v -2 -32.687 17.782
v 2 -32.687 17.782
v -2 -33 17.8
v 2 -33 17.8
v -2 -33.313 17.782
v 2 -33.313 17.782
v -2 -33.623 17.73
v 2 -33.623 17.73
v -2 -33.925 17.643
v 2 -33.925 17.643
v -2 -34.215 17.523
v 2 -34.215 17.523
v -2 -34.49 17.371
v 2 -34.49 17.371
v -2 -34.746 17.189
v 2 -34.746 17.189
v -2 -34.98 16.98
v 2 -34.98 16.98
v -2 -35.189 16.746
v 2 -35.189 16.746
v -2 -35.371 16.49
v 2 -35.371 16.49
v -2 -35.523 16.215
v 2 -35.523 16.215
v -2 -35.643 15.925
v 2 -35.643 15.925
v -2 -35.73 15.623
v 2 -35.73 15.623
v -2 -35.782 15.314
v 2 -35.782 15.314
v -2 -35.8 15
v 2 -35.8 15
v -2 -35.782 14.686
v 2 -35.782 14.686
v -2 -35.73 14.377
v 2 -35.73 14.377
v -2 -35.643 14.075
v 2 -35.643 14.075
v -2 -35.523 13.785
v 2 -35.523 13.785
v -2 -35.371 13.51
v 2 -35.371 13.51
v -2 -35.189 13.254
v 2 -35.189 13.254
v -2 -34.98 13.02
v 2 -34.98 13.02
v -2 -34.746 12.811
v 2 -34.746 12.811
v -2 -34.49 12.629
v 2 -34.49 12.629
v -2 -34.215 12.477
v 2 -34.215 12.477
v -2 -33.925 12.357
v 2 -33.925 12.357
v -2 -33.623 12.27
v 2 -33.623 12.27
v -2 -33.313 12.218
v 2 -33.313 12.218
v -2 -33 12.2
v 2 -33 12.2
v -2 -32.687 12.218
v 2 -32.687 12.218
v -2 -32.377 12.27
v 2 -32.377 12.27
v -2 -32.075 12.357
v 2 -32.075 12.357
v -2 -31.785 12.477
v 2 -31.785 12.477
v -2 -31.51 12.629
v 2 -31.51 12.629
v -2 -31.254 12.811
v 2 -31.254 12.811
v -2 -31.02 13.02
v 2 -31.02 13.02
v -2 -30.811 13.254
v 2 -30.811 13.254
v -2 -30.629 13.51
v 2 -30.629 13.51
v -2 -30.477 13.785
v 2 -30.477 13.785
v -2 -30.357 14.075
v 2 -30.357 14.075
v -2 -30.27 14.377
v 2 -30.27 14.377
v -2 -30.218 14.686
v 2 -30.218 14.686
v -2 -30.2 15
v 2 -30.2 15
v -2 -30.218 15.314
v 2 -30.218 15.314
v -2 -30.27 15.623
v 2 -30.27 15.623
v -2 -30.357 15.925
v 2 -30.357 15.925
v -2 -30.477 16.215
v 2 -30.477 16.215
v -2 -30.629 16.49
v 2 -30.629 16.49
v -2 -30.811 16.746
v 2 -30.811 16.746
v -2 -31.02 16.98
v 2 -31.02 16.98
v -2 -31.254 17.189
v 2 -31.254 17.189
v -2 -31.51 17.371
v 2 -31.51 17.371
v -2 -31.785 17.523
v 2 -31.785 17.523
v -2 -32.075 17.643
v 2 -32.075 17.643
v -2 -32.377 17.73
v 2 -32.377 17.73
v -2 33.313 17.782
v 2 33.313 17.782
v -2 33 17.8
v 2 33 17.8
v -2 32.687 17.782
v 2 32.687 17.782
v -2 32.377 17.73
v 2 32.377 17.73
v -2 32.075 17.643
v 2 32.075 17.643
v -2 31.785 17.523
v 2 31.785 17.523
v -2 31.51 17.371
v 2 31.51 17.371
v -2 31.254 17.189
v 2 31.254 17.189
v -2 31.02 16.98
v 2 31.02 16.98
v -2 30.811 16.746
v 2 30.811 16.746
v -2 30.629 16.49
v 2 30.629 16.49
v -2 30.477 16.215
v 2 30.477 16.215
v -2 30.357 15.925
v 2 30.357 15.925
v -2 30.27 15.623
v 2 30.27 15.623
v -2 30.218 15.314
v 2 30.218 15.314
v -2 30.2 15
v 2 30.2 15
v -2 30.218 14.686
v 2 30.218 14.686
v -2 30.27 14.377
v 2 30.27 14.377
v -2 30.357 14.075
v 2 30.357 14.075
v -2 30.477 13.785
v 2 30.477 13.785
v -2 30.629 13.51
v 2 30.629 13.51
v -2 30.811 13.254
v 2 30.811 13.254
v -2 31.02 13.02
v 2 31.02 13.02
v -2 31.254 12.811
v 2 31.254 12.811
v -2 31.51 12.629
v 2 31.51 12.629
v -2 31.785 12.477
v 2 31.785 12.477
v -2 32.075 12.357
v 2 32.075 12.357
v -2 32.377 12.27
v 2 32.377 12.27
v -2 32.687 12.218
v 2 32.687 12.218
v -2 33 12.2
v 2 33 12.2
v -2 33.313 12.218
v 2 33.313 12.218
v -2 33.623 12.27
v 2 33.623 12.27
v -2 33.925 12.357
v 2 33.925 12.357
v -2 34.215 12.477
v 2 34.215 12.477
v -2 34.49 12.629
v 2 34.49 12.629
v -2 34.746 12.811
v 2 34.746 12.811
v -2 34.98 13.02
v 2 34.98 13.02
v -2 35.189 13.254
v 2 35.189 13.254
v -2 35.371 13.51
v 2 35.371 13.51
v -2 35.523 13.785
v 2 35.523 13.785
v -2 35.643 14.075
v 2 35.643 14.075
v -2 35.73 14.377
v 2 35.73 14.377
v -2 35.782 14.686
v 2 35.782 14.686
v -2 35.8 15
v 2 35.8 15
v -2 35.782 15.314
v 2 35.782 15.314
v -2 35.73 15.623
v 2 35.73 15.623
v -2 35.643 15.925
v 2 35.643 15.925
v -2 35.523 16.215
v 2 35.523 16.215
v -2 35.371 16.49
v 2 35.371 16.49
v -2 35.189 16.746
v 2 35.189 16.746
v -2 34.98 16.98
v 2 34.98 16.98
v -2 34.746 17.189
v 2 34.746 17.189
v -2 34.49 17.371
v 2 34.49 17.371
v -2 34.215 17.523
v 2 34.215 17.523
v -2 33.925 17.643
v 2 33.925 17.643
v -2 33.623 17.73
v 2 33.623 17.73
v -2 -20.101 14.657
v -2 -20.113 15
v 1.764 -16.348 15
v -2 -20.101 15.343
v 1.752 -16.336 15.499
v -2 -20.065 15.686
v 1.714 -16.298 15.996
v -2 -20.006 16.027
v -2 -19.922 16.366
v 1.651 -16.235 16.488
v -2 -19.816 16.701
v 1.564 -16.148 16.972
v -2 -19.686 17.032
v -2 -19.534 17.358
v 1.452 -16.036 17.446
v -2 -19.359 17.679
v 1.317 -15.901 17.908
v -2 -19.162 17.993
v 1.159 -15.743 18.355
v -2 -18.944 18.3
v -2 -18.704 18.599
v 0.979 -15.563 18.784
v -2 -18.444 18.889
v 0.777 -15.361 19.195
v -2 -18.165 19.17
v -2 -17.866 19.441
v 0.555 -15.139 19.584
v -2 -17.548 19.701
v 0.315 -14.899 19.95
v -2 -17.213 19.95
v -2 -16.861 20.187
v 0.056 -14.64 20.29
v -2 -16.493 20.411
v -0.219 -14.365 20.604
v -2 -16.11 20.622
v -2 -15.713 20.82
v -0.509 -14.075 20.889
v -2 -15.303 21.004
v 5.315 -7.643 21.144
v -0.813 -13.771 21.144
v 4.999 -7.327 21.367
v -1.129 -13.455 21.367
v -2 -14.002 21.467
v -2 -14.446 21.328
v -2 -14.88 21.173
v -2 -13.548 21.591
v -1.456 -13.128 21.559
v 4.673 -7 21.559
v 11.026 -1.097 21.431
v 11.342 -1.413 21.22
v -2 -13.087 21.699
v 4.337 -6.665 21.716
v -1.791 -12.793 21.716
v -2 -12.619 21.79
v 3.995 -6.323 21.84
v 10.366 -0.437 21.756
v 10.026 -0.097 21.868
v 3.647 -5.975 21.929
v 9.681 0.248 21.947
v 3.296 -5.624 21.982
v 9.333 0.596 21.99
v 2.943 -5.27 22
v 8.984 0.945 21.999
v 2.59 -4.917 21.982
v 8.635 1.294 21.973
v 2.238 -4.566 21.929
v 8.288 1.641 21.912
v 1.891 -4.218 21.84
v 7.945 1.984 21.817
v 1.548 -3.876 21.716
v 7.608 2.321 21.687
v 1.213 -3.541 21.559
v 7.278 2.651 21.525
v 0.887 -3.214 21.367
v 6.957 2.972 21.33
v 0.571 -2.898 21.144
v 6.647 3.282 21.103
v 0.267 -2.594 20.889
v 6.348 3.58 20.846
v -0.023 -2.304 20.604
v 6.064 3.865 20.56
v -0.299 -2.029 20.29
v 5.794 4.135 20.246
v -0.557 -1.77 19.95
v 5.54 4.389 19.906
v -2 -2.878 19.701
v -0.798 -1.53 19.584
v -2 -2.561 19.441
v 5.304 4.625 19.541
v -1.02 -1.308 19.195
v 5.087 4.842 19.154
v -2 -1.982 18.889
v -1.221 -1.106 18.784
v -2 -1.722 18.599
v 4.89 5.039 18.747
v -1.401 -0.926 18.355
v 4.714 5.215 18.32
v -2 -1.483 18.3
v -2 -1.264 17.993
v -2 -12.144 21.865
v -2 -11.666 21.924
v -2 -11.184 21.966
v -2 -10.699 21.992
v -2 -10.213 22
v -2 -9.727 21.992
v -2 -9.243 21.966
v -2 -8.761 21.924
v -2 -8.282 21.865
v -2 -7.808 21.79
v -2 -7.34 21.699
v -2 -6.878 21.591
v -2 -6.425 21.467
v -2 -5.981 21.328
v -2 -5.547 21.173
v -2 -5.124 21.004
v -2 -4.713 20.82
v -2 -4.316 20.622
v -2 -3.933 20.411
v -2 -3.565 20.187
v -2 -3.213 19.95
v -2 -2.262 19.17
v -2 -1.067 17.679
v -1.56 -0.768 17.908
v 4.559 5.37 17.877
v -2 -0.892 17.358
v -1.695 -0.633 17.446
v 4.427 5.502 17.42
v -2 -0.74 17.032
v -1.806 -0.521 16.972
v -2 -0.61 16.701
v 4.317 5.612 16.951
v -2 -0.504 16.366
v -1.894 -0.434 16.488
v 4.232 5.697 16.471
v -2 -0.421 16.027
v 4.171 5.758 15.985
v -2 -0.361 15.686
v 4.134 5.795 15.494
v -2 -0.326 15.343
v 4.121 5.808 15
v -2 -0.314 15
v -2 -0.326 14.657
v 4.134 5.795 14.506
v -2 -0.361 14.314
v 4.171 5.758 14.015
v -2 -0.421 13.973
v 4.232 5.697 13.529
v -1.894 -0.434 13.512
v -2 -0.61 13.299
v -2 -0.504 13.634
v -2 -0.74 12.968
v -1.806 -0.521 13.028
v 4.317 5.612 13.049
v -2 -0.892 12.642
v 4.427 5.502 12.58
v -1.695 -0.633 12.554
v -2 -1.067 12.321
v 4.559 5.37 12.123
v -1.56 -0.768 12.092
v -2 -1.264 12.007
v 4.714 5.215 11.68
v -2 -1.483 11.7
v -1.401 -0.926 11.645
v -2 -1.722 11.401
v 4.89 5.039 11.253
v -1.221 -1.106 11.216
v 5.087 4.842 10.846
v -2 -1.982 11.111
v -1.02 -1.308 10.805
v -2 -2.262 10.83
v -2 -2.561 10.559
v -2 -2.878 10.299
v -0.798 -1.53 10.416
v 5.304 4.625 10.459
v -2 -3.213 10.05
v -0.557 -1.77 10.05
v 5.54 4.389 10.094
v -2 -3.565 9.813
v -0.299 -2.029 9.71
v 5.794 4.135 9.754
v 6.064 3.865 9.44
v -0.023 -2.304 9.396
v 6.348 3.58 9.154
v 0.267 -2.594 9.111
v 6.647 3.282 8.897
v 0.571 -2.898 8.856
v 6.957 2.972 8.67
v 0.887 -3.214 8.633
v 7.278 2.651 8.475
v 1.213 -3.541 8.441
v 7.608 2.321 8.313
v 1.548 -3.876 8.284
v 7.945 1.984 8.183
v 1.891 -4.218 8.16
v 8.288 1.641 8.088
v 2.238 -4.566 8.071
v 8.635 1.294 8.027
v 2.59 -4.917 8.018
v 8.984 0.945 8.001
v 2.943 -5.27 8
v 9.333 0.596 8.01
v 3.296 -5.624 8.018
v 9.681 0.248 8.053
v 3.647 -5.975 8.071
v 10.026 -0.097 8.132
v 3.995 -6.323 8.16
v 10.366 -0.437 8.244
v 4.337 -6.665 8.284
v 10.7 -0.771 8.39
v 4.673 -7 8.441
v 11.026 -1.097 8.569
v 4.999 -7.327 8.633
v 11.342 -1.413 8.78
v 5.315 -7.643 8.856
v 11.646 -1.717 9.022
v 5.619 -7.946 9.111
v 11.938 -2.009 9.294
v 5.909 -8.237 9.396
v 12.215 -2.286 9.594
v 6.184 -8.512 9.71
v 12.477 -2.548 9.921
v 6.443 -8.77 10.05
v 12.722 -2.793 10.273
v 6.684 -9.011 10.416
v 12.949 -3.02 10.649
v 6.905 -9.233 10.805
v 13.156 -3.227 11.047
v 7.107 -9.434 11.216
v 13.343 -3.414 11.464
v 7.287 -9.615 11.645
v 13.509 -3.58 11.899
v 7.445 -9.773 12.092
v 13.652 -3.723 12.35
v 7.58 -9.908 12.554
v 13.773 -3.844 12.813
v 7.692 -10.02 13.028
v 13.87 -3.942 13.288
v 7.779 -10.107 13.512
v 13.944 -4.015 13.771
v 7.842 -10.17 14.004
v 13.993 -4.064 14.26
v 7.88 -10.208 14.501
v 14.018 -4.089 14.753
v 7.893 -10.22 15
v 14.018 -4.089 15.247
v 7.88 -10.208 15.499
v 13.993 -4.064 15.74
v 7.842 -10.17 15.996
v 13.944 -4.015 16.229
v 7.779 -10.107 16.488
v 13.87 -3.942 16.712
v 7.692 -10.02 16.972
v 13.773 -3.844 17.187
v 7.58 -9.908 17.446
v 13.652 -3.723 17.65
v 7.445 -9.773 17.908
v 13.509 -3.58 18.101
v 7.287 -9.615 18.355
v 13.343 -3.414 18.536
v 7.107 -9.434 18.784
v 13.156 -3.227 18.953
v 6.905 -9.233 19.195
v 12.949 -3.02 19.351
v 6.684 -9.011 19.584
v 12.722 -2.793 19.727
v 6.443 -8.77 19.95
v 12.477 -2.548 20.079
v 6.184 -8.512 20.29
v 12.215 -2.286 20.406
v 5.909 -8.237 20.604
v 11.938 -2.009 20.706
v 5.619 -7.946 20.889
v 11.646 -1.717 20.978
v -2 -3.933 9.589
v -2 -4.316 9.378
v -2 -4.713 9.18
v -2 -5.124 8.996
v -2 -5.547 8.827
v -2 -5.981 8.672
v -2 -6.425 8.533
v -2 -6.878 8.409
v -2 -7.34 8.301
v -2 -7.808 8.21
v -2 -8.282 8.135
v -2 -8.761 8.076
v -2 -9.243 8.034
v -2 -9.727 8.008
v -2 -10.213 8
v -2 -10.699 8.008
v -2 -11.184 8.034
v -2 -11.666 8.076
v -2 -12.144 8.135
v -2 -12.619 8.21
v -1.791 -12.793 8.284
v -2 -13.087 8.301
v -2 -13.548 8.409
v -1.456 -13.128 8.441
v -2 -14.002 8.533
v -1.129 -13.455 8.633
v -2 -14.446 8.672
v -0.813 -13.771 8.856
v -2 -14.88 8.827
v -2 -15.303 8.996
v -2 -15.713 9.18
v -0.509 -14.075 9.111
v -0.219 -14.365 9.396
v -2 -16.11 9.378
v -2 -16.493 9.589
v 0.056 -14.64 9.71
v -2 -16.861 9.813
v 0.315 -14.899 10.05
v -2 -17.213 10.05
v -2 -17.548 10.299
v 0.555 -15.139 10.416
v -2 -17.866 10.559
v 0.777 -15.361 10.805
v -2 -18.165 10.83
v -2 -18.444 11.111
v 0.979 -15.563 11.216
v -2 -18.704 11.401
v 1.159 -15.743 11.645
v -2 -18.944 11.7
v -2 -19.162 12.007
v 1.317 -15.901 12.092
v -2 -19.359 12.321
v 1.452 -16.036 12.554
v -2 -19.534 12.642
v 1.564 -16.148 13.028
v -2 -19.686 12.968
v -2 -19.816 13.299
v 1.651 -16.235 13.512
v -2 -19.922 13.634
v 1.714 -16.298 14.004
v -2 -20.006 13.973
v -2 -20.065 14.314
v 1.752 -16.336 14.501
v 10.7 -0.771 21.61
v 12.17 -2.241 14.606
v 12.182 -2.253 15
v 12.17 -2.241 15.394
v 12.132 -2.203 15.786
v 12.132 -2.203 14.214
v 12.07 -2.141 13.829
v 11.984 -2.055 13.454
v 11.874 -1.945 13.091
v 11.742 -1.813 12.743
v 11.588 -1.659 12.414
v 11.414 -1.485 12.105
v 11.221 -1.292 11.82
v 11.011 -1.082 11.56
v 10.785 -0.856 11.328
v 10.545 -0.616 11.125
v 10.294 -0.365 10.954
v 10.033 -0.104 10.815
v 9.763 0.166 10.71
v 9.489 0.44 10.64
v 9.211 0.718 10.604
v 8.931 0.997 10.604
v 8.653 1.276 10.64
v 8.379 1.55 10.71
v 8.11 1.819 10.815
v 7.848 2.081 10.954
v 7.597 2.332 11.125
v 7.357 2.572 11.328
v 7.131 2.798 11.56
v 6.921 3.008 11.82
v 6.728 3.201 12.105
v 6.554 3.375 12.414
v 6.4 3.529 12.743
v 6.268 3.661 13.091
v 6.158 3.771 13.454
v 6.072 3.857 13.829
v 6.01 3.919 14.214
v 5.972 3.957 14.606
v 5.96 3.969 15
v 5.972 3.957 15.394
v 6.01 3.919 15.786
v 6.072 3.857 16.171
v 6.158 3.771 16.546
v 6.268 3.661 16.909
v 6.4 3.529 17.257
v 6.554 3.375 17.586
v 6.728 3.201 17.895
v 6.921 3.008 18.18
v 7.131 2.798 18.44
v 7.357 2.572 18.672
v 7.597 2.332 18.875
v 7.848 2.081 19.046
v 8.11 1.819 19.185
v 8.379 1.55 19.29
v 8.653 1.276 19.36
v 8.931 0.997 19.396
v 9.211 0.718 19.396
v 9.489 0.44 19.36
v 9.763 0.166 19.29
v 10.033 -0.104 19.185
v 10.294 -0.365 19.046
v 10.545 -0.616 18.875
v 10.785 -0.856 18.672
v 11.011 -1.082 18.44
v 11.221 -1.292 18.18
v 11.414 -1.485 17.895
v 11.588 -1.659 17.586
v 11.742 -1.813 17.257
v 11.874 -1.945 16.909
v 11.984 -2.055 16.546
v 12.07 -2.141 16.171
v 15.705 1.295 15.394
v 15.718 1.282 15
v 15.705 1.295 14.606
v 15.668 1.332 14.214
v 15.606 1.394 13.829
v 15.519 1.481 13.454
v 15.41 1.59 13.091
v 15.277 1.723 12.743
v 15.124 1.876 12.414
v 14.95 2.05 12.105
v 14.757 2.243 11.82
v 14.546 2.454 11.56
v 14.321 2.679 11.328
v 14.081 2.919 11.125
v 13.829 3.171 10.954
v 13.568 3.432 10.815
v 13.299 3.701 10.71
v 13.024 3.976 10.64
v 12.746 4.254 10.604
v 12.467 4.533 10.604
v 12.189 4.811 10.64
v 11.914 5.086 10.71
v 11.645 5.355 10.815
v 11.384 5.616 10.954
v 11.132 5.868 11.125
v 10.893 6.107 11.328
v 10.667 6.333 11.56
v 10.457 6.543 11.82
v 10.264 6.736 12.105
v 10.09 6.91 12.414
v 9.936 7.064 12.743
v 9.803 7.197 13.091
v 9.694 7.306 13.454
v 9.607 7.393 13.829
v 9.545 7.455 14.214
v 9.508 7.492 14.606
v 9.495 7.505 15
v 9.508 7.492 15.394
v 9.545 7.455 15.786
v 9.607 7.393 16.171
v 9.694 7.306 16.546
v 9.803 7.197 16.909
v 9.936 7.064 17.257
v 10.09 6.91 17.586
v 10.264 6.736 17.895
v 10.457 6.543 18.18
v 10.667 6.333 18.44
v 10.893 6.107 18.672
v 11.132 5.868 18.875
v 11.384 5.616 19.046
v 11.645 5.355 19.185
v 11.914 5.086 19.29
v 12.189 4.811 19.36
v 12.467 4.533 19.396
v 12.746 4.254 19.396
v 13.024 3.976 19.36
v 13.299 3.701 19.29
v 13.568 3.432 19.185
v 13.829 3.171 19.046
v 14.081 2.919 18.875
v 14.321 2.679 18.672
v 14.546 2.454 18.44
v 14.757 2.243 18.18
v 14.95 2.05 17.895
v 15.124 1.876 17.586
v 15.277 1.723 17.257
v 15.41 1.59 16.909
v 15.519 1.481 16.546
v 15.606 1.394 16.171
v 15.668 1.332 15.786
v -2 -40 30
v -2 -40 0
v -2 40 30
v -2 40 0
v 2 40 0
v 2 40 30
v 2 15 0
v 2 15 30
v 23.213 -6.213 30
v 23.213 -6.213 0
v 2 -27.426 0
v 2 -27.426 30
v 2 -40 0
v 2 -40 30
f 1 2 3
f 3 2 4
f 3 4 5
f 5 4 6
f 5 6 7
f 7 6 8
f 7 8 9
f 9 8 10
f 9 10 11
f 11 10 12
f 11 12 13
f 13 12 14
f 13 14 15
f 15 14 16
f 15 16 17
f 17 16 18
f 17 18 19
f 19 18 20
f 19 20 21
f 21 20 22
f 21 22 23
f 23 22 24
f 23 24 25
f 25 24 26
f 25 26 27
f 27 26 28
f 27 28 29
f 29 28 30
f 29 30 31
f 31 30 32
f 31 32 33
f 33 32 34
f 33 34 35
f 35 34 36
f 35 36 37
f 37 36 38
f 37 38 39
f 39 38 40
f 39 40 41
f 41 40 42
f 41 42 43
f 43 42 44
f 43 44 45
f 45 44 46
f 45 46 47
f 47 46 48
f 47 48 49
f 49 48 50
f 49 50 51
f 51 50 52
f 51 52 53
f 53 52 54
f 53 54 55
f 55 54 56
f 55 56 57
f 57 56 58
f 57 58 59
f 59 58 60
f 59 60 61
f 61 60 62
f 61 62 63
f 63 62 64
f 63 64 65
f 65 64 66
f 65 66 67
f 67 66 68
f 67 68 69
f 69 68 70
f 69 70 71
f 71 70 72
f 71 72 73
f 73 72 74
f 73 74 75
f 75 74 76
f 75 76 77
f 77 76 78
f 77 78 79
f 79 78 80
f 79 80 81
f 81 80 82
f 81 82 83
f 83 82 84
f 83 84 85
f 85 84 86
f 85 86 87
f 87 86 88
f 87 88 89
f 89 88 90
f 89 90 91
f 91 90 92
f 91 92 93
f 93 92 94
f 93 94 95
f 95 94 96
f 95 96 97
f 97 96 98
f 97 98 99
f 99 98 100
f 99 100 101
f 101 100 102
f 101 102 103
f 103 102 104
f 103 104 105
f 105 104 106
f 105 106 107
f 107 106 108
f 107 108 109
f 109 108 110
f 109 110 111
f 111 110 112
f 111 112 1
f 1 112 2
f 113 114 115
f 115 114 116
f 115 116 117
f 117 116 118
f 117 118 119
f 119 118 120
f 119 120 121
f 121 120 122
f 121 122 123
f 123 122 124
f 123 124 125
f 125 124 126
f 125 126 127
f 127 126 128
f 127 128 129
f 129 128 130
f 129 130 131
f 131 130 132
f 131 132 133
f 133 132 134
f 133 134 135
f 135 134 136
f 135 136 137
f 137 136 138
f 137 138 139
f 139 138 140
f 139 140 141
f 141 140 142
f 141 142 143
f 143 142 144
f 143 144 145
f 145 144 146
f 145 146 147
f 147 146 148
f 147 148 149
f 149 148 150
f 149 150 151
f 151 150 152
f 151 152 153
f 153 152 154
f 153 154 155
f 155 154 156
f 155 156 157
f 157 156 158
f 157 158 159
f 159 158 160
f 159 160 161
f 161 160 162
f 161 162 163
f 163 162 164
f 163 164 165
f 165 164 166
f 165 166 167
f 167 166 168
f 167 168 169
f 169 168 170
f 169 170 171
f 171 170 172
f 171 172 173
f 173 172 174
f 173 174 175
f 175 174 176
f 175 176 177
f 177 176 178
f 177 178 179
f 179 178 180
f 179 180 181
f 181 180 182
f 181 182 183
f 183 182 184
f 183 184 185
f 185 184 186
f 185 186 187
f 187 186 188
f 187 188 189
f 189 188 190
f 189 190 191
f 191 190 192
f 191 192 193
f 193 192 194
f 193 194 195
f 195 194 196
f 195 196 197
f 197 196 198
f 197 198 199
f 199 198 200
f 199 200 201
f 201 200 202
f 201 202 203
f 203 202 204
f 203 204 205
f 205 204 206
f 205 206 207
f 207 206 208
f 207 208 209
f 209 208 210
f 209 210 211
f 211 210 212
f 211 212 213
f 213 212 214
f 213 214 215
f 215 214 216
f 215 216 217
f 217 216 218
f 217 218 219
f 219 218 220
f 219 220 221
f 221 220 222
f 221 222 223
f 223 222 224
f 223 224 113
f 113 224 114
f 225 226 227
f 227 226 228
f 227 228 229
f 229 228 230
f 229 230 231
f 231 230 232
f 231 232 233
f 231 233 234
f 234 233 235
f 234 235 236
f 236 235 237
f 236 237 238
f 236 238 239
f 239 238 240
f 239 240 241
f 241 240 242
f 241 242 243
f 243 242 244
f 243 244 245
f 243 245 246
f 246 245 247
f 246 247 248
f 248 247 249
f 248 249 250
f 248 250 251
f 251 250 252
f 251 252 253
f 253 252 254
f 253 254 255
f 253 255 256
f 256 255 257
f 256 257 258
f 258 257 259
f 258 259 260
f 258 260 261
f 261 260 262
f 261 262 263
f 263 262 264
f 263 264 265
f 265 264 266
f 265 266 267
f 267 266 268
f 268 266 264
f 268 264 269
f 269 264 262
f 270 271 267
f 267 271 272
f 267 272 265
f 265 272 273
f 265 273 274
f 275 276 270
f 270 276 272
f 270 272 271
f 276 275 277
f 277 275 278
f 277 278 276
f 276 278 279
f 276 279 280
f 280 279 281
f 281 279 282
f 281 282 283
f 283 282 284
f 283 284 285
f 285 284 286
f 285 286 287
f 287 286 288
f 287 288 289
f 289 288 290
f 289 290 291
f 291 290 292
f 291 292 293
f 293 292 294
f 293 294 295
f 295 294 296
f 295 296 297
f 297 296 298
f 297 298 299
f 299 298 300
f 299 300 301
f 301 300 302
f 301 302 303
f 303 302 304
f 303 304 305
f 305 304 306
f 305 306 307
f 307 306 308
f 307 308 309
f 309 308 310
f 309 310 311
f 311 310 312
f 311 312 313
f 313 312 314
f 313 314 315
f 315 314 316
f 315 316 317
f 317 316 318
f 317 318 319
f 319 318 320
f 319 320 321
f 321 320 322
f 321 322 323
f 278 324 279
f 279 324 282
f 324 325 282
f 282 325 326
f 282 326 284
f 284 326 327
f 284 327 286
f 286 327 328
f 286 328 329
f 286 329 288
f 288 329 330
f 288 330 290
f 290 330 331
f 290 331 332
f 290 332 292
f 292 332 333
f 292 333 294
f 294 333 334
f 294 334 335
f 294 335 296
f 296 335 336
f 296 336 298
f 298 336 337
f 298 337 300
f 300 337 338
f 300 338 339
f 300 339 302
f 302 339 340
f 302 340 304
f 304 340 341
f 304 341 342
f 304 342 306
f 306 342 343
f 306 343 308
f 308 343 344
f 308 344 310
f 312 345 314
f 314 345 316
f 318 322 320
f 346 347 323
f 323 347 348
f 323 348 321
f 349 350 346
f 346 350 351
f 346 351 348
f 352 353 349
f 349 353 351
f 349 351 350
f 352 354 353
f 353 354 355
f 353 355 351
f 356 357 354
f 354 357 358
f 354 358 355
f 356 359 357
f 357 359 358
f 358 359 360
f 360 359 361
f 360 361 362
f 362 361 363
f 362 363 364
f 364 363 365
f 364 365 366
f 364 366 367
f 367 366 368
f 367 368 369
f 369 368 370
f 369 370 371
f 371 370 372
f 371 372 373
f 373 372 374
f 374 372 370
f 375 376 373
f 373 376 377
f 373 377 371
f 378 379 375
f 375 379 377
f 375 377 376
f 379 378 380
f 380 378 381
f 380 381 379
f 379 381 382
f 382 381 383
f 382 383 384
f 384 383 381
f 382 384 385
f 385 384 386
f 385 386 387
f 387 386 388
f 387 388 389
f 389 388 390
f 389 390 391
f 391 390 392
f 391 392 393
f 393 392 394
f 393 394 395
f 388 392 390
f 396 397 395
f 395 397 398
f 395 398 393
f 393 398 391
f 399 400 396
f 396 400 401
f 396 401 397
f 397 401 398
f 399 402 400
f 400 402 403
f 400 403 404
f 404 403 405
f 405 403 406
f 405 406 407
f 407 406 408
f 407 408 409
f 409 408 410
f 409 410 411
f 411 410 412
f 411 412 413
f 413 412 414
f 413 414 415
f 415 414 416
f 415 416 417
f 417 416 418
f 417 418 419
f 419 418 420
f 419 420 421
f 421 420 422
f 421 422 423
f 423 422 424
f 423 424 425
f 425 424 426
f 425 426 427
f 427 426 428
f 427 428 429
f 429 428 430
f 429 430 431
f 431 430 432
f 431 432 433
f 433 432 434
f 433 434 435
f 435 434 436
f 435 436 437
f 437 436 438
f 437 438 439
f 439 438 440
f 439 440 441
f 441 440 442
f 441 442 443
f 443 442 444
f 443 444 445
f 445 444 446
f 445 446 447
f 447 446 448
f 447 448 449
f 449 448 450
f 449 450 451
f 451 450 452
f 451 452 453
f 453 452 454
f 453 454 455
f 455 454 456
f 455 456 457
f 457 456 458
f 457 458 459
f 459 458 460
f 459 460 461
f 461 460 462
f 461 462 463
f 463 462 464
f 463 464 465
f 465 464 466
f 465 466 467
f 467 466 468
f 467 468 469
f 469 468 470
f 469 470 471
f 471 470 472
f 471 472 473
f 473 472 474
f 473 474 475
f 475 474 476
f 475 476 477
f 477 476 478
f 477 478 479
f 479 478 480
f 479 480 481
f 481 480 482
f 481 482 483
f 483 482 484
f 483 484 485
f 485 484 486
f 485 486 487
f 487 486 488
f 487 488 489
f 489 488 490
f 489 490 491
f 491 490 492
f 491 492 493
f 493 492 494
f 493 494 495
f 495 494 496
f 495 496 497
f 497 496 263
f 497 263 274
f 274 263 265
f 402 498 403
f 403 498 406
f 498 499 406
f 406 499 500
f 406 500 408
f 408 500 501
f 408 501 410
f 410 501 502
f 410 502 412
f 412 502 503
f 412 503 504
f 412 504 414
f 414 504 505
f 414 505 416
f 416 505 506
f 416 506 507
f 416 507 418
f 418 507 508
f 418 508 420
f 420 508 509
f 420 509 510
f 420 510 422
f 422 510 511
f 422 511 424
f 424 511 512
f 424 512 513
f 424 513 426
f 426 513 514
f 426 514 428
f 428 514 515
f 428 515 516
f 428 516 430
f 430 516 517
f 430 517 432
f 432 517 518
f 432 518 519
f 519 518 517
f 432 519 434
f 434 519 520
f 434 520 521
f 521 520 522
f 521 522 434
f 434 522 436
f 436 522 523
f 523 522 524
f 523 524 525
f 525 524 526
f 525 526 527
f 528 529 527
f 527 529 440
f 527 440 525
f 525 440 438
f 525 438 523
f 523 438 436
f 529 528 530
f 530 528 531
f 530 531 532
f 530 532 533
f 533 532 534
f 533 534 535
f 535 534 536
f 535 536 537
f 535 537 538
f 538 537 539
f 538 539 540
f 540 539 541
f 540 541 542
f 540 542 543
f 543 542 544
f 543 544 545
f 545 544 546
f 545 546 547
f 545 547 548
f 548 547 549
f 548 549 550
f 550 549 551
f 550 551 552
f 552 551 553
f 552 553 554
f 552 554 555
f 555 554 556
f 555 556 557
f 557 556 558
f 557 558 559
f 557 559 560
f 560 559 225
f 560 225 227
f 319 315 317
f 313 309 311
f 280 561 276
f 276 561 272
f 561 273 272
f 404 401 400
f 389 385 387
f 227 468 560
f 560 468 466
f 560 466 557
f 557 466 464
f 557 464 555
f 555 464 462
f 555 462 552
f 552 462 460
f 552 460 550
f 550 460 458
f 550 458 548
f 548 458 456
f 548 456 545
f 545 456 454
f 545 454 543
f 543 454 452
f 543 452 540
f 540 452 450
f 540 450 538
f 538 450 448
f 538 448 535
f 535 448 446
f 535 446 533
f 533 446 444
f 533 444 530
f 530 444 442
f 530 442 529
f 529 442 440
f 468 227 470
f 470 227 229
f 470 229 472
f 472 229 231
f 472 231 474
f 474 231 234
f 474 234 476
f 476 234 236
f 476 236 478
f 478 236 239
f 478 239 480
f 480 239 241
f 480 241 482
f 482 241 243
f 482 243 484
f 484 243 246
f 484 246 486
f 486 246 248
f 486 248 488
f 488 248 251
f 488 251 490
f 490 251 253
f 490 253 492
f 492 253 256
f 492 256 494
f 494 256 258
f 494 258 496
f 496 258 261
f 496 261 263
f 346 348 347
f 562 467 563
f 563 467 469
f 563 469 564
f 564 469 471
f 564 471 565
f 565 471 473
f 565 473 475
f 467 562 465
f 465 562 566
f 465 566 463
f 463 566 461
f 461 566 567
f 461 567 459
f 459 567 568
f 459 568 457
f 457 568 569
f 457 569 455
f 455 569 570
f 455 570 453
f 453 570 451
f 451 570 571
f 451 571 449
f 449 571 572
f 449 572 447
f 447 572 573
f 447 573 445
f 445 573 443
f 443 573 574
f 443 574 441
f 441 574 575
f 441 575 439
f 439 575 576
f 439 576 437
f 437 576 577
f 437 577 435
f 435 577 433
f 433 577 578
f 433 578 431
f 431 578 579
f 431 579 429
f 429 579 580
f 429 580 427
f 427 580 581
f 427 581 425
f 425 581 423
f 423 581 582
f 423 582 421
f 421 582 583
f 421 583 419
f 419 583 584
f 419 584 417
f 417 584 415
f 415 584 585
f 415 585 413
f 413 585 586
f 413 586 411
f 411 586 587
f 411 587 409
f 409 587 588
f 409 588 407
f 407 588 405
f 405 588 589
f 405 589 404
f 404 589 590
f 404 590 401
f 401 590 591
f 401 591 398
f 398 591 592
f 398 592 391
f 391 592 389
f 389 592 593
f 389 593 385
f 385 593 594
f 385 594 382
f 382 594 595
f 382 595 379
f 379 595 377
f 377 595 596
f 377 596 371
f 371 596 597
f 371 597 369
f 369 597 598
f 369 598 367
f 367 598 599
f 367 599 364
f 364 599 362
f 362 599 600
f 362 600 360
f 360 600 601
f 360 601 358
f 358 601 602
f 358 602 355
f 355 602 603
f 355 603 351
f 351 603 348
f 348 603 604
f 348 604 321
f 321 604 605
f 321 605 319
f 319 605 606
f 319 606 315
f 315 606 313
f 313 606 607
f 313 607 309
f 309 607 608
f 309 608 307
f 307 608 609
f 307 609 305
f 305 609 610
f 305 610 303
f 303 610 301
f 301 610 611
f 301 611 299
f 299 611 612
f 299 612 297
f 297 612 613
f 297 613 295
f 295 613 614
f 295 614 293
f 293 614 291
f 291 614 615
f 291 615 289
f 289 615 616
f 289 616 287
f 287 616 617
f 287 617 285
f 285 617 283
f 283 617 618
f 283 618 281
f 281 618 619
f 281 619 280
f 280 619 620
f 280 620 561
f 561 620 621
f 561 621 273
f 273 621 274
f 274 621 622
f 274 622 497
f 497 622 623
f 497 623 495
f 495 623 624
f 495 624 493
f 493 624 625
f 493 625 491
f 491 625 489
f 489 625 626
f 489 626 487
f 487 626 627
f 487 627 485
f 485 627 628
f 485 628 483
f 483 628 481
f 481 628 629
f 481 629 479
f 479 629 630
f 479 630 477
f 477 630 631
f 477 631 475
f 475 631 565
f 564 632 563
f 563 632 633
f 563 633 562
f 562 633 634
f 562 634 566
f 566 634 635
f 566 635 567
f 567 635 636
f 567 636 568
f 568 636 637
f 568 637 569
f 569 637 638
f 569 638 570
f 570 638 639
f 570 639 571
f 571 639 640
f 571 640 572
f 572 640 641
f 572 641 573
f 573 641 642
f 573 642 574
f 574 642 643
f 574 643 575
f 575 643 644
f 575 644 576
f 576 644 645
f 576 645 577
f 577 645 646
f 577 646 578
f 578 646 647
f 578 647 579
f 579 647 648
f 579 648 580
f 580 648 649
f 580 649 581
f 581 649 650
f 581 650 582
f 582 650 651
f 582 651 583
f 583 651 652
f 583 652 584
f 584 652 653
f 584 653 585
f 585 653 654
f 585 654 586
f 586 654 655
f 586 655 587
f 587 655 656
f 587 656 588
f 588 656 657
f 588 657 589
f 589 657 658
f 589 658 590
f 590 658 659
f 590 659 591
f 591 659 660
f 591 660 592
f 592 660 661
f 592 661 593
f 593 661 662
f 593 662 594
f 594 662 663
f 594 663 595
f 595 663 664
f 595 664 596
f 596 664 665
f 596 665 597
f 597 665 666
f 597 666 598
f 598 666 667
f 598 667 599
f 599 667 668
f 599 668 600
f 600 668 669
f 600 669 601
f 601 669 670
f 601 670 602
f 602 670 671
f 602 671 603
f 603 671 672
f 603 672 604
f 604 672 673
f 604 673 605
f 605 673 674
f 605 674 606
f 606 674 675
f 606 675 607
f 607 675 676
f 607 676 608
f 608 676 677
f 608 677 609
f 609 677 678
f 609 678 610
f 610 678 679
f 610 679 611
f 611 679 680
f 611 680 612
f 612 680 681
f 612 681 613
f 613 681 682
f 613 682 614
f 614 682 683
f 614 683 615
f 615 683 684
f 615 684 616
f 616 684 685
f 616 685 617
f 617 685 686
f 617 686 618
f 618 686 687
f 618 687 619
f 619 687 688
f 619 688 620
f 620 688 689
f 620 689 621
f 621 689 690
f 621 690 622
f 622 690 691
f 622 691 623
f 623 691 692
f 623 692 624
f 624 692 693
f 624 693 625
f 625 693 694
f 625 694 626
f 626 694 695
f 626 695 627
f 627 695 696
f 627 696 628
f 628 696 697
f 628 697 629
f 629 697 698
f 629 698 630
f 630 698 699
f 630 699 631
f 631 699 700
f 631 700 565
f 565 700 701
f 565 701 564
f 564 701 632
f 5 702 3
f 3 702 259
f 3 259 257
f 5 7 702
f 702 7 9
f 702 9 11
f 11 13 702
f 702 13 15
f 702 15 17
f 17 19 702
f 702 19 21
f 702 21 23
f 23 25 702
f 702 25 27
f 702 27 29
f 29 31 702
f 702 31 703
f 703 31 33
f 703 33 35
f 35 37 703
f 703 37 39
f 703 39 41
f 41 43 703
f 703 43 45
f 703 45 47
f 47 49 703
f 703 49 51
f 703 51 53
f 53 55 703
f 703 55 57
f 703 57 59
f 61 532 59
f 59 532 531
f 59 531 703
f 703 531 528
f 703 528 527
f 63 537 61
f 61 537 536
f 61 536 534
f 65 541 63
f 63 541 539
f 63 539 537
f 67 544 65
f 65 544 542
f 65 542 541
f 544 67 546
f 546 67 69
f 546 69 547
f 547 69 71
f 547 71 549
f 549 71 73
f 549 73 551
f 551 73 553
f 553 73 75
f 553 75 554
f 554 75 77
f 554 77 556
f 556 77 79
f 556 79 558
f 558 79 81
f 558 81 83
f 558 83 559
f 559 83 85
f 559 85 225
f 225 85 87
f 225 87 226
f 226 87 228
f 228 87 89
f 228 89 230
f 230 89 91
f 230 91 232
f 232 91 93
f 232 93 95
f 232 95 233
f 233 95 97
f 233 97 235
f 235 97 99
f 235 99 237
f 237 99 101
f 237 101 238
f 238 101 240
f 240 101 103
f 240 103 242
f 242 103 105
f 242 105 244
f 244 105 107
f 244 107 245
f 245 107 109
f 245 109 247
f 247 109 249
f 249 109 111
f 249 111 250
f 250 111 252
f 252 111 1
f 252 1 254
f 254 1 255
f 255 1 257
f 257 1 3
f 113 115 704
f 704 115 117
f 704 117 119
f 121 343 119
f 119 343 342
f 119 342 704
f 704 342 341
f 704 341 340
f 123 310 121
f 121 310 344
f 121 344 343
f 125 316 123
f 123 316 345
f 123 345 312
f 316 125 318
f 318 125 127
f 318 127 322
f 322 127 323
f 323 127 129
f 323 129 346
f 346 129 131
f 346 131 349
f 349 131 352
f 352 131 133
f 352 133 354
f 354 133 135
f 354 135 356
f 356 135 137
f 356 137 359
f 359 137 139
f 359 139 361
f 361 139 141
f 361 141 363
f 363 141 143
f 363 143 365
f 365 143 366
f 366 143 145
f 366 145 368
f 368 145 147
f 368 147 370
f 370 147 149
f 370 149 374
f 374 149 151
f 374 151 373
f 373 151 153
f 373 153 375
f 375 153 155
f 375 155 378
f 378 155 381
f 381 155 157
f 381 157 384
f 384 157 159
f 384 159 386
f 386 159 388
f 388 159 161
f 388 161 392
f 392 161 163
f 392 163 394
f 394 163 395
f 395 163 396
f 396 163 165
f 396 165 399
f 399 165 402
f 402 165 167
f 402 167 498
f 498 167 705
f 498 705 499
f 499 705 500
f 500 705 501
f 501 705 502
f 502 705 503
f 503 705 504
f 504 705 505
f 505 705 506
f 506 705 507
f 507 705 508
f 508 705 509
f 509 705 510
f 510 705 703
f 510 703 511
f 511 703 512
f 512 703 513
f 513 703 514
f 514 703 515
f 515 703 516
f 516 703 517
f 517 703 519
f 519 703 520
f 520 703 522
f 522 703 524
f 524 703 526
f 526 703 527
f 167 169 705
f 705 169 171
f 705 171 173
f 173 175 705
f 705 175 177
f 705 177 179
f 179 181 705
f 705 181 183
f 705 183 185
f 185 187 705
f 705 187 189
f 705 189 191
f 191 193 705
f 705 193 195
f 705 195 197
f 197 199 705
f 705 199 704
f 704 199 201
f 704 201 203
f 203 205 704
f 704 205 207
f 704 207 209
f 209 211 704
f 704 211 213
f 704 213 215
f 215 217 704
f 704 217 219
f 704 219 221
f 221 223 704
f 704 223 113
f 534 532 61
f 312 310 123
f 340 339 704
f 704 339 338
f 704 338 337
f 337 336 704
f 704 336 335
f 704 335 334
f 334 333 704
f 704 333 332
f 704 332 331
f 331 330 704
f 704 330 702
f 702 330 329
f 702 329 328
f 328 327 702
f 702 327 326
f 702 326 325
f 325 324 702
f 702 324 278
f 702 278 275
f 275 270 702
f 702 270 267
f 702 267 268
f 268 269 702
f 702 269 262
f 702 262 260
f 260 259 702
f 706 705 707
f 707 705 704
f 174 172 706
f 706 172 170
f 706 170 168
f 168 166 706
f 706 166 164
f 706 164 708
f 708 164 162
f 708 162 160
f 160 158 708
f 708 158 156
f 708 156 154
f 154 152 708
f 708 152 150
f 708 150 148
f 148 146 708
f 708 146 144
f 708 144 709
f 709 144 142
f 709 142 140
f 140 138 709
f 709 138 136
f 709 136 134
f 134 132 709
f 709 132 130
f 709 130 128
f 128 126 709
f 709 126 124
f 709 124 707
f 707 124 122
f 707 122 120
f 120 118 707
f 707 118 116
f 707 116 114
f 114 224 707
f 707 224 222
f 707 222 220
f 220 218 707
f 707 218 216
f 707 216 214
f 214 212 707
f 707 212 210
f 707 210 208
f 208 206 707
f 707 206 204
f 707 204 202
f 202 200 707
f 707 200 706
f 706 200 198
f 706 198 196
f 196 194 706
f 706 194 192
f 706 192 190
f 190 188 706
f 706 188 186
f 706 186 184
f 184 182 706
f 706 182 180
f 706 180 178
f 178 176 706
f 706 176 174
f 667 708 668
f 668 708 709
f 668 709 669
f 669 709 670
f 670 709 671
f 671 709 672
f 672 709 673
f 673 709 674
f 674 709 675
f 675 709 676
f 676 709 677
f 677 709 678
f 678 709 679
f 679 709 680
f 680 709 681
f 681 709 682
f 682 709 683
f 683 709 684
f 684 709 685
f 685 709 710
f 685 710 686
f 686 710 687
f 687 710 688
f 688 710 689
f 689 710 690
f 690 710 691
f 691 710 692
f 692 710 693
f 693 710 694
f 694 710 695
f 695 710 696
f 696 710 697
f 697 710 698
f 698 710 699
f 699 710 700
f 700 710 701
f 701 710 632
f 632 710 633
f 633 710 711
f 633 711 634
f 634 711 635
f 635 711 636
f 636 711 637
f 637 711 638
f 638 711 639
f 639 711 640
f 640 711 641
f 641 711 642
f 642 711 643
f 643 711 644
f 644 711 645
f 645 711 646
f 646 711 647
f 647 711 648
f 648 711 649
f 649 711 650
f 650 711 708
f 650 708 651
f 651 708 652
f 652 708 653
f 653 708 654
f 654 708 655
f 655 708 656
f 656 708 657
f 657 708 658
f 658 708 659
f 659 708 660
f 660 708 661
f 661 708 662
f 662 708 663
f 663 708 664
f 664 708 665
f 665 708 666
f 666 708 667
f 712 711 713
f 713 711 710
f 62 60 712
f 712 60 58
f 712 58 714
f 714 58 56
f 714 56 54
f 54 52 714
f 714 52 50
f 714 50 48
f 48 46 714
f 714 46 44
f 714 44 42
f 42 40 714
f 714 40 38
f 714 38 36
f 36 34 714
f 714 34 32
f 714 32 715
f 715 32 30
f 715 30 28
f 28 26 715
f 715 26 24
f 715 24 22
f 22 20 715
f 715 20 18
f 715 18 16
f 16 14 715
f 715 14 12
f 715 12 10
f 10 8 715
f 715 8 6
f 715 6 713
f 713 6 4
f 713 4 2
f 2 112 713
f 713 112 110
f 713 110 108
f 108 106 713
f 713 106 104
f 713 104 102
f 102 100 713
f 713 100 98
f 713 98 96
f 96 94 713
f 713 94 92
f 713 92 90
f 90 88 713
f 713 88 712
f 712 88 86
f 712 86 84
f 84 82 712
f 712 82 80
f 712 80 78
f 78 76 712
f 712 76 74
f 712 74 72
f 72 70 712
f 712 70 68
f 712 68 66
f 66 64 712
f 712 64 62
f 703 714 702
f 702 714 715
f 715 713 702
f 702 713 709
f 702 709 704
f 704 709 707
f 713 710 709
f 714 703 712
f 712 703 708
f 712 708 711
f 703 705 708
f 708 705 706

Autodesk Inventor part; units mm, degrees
ref_plane "YZ Plane" through (0, 0, 0) normal (1, 0, 0) x (0, 1, 0)
ref_plane "XZ Plane" through (0, 0, 0) normal (0, 1, 0) x (-1, 0, 0)
sketch "Sketch6" plane through (0, 0, 0) normal (0, 0, 1) x (1, 0, 0)
  line L0 (-2, -40) -> (2, -40)
  line L1 (2, -40) -> (2, 40)
  line L2 (2, 40) -> (-2, 40)
  line L3 (-2, 40) -> (-2, -40)
  line L4 (-2, -40) -> (2, 40) construction
  line L5 (2, -40) -> (-2, 40) construction
  line L6 (2, 15) -> (23.2132, -6.2132)
  line L7 (2, 15) -> (32, 15) construction
  line L8 (23.2132, -6.2132) -> (2, -27.4264)
  line L9 (2, -27.4264) -> (2, 15)
  point P0 (0, 0)
  point P1 (2, -27.4264)
  dimension "d23" = 4
  dimension "d24" = 80
  dimension "d25" = 30
  dimension "d26" = 45
  dimension "d27" = 30
  dimension "d28" = 90
  dimension "d29" = 25
extrude "Extrusion6" add sketch "Sketch6" along normal blind 30
sketch "Sketch7" plane through (2, 15, 0) normal (0.7071, 0.7071, 0) x (-0.7071, 0.7071, 0)
  circle A0 centre (-15, 15) radius 4.4
  line L0 (-30, 0) -> (-30, 30) projected
  line L1 (-30, 30) -> (0, 30) projected
  point P0 (-9.1924, 0)
  dimension "d32" = 15
  dimension "d33" = 15
  dimension "d34" = 8.8
extrude "Extrusion7" cut sketch "Sketch7" against normal blind 27.5
ref_plane "Work Plane6" through (-19.9203, -6.9203, 0) normal (0.7071, 0.7071, 0) x (-0.7071, 0.7071, 0)
sketch "Sketch8" plane through (-19.9203, -6.9203, 0) normal (0.7071, 0.7071, 0) x (-0.7071, 0.7071, 0)
  circle A0 centre (-15, 15) radius 4.4 projected
  circle A1 centre (-15, 15) radius 7
  point P0 (-9.1924, 0)
  dimension "d38" = 14
extrude "Extrusion8" cut sketch "Sketch8" along normal blind 26 contours A0 | A1
sketch "Sketch9" plane through (2, -40, 0) normal (1, 0, 0) x (0, 0, -1)
  circle A0 centre (-15, 7) radius 2.8
  line L0 (0, 0) -> (-30, 0) projected
  line L1 (-30, 0) -> (-30, 12.5736) projected
  circle A1 centre (-15, 73) radius 2.8
  line L2 (0, 55) -> (0, 80) projected
  line L3 (0, 80) -> (-30, 80) projected
  point P0 (0, 40)
  dimension "d41" = 5.6
  dimension "d42" = 7
  dimension "d43" = 15
  dimension "d46" = 15
  dimension "d47" = 7
extrude "Extrusion9" cut sketch "Sketch9" against normal through all
properties part number "45bracket" material "Acetal Resin, Black"
